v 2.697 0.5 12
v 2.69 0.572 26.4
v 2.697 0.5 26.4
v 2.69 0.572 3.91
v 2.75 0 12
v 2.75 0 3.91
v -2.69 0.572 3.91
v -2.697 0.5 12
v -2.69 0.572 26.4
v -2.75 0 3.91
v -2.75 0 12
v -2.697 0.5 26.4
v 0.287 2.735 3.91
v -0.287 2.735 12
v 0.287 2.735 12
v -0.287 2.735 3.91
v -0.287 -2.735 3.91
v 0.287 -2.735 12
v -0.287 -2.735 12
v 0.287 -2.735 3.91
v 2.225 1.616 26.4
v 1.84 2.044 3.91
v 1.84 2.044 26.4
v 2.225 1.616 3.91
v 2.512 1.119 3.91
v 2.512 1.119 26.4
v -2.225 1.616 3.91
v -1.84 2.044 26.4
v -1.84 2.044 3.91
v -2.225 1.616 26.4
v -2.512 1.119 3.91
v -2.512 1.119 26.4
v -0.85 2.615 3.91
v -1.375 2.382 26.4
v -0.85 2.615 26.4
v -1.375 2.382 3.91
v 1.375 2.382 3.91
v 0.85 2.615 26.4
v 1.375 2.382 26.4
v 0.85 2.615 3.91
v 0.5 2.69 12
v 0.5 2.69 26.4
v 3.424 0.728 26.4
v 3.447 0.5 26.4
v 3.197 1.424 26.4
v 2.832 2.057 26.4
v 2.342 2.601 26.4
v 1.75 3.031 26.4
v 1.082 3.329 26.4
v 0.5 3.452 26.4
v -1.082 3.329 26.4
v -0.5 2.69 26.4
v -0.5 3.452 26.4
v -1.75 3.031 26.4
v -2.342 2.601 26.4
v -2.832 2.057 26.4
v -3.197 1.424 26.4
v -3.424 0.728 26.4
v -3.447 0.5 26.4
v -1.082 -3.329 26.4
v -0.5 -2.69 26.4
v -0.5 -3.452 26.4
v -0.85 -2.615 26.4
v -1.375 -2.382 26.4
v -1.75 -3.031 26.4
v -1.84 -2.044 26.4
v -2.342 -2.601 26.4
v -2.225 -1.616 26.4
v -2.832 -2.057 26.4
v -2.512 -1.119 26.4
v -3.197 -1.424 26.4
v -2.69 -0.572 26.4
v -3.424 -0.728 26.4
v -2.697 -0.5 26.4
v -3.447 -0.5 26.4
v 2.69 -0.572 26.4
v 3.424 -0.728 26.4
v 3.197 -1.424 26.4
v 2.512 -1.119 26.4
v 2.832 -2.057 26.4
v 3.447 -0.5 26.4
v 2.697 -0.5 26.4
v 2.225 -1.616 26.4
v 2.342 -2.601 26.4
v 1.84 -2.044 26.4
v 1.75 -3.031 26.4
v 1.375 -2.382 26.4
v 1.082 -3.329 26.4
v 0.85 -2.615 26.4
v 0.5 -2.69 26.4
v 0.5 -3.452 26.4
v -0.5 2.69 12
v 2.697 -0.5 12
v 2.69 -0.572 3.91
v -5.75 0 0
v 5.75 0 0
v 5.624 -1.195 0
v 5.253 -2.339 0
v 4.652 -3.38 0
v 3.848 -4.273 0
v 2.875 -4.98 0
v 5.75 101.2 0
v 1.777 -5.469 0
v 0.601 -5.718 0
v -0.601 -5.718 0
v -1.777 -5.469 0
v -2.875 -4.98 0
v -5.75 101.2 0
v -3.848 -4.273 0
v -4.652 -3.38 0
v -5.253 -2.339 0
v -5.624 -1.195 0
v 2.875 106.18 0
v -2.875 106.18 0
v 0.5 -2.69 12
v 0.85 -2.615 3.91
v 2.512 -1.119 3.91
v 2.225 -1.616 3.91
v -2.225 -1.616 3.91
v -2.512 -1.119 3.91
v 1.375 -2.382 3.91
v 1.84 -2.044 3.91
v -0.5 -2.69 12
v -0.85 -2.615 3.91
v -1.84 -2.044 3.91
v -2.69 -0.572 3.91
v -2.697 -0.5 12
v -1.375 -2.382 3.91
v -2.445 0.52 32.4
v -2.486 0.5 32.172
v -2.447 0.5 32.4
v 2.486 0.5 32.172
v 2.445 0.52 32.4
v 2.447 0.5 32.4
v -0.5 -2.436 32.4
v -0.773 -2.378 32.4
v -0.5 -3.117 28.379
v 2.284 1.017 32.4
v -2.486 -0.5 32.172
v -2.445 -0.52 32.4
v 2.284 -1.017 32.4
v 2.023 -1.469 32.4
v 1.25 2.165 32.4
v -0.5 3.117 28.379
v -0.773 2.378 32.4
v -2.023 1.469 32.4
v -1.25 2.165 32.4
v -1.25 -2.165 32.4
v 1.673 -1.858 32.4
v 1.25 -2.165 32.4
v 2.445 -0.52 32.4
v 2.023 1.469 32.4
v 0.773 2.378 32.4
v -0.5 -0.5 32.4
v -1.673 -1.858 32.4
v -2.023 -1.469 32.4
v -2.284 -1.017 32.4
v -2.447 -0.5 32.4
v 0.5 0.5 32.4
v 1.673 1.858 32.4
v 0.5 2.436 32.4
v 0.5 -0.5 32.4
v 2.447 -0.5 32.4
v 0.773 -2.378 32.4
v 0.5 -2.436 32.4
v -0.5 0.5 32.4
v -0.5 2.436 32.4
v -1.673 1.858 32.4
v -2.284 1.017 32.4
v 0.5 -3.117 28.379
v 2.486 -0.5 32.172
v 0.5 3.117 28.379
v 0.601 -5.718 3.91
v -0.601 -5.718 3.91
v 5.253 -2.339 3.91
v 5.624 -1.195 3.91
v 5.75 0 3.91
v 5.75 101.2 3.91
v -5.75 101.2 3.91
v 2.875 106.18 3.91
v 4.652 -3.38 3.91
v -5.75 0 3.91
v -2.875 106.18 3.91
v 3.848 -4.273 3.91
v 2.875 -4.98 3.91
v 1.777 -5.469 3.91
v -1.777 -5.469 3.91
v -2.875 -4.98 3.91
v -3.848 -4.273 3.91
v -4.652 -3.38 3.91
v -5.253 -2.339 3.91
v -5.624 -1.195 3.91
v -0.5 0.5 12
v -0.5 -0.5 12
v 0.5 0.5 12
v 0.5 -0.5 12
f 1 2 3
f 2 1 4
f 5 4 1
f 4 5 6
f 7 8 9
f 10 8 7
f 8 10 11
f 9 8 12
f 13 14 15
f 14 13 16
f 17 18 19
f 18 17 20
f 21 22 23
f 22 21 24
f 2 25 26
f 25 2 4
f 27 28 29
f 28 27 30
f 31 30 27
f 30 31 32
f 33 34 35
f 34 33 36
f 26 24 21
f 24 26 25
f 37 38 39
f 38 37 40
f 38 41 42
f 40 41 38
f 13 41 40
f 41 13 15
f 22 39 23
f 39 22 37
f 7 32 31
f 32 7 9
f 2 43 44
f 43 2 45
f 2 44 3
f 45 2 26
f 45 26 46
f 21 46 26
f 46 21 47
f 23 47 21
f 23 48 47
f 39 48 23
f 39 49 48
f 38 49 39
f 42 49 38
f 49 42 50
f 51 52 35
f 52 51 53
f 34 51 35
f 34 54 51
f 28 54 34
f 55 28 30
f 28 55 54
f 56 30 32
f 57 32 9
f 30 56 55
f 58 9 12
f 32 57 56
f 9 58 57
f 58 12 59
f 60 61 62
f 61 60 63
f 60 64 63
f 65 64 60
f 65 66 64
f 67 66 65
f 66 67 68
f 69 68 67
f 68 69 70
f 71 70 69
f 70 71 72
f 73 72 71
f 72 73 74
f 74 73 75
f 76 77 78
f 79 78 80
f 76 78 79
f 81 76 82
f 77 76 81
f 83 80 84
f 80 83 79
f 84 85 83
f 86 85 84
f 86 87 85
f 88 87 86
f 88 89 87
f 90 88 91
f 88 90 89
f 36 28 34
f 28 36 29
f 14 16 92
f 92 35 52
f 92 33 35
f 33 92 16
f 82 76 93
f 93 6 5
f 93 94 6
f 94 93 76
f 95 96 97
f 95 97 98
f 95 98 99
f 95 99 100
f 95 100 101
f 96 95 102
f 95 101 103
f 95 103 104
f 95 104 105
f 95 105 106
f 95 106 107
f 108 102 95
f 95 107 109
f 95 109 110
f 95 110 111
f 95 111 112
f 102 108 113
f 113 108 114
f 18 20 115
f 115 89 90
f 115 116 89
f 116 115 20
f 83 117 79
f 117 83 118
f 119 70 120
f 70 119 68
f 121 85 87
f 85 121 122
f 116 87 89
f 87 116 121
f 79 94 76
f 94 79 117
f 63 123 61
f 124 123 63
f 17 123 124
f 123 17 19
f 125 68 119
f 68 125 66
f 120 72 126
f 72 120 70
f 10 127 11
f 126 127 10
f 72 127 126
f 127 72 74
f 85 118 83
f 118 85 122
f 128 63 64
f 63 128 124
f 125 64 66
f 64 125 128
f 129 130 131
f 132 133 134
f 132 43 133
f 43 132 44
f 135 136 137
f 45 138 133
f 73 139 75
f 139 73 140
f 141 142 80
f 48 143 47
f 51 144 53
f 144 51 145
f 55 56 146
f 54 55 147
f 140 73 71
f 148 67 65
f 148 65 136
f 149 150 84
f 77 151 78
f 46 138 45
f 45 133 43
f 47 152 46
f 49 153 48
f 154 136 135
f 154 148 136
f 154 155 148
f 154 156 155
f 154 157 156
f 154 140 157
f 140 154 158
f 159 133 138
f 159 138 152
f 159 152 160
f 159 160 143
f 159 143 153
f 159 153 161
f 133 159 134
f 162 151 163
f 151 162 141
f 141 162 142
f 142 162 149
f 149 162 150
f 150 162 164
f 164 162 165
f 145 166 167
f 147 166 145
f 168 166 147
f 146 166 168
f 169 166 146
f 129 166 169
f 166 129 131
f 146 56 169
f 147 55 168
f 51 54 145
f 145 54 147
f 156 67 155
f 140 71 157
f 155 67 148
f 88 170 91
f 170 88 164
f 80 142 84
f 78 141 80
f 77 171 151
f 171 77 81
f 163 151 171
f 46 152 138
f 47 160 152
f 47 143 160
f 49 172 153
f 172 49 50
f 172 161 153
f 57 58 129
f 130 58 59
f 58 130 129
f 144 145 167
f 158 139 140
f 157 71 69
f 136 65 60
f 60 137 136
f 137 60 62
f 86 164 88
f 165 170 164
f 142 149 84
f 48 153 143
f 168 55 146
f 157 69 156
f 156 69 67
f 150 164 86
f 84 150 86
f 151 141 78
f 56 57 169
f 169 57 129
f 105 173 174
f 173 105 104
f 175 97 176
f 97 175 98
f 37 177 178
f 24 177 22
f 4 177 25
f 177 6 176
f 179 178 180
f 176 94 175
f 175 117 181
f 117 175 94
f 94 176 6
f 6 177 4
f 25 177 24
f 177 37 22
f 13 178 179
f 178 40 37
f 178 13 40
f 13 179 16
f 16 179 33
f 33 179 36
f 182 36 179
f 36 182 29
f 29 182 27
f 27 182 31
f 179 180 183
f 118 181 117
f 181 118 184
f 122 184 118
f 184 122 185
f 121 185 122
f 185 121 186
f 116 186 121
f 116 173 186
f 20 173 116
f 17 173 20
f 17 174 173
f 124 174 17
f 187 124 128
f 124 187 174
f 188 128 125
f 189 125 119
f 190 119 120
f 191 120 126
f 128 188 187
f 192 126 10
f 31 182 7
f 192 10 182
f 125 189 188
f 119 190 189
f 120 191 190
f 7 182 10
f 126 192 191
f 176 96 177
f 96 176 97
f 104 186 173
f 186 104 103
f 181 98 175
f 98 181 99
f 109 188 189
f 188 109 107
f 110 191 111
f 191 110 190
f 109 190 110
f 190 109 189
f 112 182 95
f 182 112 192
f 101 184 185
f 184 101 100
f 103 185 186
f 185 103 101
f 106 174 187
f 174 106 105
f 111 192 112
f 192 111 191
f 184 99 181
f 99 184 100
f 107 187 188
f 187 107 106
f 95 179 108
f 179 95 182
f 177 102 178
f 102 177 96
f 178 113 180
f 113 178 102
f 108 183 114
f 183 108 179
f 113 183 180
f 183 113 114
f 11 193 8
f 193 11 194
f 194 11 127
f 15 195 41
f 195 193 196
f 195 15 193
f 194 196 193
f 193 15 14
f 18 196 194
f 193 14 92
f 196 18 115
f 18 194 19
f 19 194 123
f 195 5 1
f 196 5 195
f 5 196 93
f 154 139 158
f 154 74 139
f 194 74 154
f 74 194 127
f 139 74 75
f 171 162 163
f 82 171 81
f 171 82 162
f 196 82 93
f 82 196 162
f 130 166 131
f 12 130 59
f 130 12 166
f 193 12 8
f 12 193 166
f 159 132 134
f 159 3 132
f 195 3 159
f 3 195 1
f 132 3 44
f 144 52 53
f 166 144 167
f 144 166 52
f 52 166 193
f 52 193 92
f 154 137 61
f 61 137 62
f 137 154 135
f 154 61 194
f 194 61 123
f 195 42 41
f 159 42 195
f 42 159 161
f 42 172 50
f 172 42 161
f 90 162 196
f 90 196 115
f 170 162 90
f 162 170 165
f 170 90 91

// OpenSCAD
//This file was created by Russell Cygan. Creation of this design is for personal use only.

module snap(){
    cylinder(d=5.5,h=26.4,$fn=30);
    translate([0,0,26.4]) cylinder(d1=7, d2=5, h=6, $fn=30);
    cylinder(d=11.5,h=3.91,$fn=30);
    translate([-11.5/2, 0, 0])    cube([11.5,101.2,3.91]);
    translate([0,101.2,0]) cylinder(d=11.5,h=3.91,$fn=6);
    
//    translate([.75,-6,25.5]) rotate([0,0,90]) cube([12,1.5,21]);
}

difference(){
    snap();
    
    translate([-6,-.5,12]) cube([12,1,21]);
    
    translate([.5,-6,12]) rotate([0,0,90]) cube([12,1,21]);
    
}
